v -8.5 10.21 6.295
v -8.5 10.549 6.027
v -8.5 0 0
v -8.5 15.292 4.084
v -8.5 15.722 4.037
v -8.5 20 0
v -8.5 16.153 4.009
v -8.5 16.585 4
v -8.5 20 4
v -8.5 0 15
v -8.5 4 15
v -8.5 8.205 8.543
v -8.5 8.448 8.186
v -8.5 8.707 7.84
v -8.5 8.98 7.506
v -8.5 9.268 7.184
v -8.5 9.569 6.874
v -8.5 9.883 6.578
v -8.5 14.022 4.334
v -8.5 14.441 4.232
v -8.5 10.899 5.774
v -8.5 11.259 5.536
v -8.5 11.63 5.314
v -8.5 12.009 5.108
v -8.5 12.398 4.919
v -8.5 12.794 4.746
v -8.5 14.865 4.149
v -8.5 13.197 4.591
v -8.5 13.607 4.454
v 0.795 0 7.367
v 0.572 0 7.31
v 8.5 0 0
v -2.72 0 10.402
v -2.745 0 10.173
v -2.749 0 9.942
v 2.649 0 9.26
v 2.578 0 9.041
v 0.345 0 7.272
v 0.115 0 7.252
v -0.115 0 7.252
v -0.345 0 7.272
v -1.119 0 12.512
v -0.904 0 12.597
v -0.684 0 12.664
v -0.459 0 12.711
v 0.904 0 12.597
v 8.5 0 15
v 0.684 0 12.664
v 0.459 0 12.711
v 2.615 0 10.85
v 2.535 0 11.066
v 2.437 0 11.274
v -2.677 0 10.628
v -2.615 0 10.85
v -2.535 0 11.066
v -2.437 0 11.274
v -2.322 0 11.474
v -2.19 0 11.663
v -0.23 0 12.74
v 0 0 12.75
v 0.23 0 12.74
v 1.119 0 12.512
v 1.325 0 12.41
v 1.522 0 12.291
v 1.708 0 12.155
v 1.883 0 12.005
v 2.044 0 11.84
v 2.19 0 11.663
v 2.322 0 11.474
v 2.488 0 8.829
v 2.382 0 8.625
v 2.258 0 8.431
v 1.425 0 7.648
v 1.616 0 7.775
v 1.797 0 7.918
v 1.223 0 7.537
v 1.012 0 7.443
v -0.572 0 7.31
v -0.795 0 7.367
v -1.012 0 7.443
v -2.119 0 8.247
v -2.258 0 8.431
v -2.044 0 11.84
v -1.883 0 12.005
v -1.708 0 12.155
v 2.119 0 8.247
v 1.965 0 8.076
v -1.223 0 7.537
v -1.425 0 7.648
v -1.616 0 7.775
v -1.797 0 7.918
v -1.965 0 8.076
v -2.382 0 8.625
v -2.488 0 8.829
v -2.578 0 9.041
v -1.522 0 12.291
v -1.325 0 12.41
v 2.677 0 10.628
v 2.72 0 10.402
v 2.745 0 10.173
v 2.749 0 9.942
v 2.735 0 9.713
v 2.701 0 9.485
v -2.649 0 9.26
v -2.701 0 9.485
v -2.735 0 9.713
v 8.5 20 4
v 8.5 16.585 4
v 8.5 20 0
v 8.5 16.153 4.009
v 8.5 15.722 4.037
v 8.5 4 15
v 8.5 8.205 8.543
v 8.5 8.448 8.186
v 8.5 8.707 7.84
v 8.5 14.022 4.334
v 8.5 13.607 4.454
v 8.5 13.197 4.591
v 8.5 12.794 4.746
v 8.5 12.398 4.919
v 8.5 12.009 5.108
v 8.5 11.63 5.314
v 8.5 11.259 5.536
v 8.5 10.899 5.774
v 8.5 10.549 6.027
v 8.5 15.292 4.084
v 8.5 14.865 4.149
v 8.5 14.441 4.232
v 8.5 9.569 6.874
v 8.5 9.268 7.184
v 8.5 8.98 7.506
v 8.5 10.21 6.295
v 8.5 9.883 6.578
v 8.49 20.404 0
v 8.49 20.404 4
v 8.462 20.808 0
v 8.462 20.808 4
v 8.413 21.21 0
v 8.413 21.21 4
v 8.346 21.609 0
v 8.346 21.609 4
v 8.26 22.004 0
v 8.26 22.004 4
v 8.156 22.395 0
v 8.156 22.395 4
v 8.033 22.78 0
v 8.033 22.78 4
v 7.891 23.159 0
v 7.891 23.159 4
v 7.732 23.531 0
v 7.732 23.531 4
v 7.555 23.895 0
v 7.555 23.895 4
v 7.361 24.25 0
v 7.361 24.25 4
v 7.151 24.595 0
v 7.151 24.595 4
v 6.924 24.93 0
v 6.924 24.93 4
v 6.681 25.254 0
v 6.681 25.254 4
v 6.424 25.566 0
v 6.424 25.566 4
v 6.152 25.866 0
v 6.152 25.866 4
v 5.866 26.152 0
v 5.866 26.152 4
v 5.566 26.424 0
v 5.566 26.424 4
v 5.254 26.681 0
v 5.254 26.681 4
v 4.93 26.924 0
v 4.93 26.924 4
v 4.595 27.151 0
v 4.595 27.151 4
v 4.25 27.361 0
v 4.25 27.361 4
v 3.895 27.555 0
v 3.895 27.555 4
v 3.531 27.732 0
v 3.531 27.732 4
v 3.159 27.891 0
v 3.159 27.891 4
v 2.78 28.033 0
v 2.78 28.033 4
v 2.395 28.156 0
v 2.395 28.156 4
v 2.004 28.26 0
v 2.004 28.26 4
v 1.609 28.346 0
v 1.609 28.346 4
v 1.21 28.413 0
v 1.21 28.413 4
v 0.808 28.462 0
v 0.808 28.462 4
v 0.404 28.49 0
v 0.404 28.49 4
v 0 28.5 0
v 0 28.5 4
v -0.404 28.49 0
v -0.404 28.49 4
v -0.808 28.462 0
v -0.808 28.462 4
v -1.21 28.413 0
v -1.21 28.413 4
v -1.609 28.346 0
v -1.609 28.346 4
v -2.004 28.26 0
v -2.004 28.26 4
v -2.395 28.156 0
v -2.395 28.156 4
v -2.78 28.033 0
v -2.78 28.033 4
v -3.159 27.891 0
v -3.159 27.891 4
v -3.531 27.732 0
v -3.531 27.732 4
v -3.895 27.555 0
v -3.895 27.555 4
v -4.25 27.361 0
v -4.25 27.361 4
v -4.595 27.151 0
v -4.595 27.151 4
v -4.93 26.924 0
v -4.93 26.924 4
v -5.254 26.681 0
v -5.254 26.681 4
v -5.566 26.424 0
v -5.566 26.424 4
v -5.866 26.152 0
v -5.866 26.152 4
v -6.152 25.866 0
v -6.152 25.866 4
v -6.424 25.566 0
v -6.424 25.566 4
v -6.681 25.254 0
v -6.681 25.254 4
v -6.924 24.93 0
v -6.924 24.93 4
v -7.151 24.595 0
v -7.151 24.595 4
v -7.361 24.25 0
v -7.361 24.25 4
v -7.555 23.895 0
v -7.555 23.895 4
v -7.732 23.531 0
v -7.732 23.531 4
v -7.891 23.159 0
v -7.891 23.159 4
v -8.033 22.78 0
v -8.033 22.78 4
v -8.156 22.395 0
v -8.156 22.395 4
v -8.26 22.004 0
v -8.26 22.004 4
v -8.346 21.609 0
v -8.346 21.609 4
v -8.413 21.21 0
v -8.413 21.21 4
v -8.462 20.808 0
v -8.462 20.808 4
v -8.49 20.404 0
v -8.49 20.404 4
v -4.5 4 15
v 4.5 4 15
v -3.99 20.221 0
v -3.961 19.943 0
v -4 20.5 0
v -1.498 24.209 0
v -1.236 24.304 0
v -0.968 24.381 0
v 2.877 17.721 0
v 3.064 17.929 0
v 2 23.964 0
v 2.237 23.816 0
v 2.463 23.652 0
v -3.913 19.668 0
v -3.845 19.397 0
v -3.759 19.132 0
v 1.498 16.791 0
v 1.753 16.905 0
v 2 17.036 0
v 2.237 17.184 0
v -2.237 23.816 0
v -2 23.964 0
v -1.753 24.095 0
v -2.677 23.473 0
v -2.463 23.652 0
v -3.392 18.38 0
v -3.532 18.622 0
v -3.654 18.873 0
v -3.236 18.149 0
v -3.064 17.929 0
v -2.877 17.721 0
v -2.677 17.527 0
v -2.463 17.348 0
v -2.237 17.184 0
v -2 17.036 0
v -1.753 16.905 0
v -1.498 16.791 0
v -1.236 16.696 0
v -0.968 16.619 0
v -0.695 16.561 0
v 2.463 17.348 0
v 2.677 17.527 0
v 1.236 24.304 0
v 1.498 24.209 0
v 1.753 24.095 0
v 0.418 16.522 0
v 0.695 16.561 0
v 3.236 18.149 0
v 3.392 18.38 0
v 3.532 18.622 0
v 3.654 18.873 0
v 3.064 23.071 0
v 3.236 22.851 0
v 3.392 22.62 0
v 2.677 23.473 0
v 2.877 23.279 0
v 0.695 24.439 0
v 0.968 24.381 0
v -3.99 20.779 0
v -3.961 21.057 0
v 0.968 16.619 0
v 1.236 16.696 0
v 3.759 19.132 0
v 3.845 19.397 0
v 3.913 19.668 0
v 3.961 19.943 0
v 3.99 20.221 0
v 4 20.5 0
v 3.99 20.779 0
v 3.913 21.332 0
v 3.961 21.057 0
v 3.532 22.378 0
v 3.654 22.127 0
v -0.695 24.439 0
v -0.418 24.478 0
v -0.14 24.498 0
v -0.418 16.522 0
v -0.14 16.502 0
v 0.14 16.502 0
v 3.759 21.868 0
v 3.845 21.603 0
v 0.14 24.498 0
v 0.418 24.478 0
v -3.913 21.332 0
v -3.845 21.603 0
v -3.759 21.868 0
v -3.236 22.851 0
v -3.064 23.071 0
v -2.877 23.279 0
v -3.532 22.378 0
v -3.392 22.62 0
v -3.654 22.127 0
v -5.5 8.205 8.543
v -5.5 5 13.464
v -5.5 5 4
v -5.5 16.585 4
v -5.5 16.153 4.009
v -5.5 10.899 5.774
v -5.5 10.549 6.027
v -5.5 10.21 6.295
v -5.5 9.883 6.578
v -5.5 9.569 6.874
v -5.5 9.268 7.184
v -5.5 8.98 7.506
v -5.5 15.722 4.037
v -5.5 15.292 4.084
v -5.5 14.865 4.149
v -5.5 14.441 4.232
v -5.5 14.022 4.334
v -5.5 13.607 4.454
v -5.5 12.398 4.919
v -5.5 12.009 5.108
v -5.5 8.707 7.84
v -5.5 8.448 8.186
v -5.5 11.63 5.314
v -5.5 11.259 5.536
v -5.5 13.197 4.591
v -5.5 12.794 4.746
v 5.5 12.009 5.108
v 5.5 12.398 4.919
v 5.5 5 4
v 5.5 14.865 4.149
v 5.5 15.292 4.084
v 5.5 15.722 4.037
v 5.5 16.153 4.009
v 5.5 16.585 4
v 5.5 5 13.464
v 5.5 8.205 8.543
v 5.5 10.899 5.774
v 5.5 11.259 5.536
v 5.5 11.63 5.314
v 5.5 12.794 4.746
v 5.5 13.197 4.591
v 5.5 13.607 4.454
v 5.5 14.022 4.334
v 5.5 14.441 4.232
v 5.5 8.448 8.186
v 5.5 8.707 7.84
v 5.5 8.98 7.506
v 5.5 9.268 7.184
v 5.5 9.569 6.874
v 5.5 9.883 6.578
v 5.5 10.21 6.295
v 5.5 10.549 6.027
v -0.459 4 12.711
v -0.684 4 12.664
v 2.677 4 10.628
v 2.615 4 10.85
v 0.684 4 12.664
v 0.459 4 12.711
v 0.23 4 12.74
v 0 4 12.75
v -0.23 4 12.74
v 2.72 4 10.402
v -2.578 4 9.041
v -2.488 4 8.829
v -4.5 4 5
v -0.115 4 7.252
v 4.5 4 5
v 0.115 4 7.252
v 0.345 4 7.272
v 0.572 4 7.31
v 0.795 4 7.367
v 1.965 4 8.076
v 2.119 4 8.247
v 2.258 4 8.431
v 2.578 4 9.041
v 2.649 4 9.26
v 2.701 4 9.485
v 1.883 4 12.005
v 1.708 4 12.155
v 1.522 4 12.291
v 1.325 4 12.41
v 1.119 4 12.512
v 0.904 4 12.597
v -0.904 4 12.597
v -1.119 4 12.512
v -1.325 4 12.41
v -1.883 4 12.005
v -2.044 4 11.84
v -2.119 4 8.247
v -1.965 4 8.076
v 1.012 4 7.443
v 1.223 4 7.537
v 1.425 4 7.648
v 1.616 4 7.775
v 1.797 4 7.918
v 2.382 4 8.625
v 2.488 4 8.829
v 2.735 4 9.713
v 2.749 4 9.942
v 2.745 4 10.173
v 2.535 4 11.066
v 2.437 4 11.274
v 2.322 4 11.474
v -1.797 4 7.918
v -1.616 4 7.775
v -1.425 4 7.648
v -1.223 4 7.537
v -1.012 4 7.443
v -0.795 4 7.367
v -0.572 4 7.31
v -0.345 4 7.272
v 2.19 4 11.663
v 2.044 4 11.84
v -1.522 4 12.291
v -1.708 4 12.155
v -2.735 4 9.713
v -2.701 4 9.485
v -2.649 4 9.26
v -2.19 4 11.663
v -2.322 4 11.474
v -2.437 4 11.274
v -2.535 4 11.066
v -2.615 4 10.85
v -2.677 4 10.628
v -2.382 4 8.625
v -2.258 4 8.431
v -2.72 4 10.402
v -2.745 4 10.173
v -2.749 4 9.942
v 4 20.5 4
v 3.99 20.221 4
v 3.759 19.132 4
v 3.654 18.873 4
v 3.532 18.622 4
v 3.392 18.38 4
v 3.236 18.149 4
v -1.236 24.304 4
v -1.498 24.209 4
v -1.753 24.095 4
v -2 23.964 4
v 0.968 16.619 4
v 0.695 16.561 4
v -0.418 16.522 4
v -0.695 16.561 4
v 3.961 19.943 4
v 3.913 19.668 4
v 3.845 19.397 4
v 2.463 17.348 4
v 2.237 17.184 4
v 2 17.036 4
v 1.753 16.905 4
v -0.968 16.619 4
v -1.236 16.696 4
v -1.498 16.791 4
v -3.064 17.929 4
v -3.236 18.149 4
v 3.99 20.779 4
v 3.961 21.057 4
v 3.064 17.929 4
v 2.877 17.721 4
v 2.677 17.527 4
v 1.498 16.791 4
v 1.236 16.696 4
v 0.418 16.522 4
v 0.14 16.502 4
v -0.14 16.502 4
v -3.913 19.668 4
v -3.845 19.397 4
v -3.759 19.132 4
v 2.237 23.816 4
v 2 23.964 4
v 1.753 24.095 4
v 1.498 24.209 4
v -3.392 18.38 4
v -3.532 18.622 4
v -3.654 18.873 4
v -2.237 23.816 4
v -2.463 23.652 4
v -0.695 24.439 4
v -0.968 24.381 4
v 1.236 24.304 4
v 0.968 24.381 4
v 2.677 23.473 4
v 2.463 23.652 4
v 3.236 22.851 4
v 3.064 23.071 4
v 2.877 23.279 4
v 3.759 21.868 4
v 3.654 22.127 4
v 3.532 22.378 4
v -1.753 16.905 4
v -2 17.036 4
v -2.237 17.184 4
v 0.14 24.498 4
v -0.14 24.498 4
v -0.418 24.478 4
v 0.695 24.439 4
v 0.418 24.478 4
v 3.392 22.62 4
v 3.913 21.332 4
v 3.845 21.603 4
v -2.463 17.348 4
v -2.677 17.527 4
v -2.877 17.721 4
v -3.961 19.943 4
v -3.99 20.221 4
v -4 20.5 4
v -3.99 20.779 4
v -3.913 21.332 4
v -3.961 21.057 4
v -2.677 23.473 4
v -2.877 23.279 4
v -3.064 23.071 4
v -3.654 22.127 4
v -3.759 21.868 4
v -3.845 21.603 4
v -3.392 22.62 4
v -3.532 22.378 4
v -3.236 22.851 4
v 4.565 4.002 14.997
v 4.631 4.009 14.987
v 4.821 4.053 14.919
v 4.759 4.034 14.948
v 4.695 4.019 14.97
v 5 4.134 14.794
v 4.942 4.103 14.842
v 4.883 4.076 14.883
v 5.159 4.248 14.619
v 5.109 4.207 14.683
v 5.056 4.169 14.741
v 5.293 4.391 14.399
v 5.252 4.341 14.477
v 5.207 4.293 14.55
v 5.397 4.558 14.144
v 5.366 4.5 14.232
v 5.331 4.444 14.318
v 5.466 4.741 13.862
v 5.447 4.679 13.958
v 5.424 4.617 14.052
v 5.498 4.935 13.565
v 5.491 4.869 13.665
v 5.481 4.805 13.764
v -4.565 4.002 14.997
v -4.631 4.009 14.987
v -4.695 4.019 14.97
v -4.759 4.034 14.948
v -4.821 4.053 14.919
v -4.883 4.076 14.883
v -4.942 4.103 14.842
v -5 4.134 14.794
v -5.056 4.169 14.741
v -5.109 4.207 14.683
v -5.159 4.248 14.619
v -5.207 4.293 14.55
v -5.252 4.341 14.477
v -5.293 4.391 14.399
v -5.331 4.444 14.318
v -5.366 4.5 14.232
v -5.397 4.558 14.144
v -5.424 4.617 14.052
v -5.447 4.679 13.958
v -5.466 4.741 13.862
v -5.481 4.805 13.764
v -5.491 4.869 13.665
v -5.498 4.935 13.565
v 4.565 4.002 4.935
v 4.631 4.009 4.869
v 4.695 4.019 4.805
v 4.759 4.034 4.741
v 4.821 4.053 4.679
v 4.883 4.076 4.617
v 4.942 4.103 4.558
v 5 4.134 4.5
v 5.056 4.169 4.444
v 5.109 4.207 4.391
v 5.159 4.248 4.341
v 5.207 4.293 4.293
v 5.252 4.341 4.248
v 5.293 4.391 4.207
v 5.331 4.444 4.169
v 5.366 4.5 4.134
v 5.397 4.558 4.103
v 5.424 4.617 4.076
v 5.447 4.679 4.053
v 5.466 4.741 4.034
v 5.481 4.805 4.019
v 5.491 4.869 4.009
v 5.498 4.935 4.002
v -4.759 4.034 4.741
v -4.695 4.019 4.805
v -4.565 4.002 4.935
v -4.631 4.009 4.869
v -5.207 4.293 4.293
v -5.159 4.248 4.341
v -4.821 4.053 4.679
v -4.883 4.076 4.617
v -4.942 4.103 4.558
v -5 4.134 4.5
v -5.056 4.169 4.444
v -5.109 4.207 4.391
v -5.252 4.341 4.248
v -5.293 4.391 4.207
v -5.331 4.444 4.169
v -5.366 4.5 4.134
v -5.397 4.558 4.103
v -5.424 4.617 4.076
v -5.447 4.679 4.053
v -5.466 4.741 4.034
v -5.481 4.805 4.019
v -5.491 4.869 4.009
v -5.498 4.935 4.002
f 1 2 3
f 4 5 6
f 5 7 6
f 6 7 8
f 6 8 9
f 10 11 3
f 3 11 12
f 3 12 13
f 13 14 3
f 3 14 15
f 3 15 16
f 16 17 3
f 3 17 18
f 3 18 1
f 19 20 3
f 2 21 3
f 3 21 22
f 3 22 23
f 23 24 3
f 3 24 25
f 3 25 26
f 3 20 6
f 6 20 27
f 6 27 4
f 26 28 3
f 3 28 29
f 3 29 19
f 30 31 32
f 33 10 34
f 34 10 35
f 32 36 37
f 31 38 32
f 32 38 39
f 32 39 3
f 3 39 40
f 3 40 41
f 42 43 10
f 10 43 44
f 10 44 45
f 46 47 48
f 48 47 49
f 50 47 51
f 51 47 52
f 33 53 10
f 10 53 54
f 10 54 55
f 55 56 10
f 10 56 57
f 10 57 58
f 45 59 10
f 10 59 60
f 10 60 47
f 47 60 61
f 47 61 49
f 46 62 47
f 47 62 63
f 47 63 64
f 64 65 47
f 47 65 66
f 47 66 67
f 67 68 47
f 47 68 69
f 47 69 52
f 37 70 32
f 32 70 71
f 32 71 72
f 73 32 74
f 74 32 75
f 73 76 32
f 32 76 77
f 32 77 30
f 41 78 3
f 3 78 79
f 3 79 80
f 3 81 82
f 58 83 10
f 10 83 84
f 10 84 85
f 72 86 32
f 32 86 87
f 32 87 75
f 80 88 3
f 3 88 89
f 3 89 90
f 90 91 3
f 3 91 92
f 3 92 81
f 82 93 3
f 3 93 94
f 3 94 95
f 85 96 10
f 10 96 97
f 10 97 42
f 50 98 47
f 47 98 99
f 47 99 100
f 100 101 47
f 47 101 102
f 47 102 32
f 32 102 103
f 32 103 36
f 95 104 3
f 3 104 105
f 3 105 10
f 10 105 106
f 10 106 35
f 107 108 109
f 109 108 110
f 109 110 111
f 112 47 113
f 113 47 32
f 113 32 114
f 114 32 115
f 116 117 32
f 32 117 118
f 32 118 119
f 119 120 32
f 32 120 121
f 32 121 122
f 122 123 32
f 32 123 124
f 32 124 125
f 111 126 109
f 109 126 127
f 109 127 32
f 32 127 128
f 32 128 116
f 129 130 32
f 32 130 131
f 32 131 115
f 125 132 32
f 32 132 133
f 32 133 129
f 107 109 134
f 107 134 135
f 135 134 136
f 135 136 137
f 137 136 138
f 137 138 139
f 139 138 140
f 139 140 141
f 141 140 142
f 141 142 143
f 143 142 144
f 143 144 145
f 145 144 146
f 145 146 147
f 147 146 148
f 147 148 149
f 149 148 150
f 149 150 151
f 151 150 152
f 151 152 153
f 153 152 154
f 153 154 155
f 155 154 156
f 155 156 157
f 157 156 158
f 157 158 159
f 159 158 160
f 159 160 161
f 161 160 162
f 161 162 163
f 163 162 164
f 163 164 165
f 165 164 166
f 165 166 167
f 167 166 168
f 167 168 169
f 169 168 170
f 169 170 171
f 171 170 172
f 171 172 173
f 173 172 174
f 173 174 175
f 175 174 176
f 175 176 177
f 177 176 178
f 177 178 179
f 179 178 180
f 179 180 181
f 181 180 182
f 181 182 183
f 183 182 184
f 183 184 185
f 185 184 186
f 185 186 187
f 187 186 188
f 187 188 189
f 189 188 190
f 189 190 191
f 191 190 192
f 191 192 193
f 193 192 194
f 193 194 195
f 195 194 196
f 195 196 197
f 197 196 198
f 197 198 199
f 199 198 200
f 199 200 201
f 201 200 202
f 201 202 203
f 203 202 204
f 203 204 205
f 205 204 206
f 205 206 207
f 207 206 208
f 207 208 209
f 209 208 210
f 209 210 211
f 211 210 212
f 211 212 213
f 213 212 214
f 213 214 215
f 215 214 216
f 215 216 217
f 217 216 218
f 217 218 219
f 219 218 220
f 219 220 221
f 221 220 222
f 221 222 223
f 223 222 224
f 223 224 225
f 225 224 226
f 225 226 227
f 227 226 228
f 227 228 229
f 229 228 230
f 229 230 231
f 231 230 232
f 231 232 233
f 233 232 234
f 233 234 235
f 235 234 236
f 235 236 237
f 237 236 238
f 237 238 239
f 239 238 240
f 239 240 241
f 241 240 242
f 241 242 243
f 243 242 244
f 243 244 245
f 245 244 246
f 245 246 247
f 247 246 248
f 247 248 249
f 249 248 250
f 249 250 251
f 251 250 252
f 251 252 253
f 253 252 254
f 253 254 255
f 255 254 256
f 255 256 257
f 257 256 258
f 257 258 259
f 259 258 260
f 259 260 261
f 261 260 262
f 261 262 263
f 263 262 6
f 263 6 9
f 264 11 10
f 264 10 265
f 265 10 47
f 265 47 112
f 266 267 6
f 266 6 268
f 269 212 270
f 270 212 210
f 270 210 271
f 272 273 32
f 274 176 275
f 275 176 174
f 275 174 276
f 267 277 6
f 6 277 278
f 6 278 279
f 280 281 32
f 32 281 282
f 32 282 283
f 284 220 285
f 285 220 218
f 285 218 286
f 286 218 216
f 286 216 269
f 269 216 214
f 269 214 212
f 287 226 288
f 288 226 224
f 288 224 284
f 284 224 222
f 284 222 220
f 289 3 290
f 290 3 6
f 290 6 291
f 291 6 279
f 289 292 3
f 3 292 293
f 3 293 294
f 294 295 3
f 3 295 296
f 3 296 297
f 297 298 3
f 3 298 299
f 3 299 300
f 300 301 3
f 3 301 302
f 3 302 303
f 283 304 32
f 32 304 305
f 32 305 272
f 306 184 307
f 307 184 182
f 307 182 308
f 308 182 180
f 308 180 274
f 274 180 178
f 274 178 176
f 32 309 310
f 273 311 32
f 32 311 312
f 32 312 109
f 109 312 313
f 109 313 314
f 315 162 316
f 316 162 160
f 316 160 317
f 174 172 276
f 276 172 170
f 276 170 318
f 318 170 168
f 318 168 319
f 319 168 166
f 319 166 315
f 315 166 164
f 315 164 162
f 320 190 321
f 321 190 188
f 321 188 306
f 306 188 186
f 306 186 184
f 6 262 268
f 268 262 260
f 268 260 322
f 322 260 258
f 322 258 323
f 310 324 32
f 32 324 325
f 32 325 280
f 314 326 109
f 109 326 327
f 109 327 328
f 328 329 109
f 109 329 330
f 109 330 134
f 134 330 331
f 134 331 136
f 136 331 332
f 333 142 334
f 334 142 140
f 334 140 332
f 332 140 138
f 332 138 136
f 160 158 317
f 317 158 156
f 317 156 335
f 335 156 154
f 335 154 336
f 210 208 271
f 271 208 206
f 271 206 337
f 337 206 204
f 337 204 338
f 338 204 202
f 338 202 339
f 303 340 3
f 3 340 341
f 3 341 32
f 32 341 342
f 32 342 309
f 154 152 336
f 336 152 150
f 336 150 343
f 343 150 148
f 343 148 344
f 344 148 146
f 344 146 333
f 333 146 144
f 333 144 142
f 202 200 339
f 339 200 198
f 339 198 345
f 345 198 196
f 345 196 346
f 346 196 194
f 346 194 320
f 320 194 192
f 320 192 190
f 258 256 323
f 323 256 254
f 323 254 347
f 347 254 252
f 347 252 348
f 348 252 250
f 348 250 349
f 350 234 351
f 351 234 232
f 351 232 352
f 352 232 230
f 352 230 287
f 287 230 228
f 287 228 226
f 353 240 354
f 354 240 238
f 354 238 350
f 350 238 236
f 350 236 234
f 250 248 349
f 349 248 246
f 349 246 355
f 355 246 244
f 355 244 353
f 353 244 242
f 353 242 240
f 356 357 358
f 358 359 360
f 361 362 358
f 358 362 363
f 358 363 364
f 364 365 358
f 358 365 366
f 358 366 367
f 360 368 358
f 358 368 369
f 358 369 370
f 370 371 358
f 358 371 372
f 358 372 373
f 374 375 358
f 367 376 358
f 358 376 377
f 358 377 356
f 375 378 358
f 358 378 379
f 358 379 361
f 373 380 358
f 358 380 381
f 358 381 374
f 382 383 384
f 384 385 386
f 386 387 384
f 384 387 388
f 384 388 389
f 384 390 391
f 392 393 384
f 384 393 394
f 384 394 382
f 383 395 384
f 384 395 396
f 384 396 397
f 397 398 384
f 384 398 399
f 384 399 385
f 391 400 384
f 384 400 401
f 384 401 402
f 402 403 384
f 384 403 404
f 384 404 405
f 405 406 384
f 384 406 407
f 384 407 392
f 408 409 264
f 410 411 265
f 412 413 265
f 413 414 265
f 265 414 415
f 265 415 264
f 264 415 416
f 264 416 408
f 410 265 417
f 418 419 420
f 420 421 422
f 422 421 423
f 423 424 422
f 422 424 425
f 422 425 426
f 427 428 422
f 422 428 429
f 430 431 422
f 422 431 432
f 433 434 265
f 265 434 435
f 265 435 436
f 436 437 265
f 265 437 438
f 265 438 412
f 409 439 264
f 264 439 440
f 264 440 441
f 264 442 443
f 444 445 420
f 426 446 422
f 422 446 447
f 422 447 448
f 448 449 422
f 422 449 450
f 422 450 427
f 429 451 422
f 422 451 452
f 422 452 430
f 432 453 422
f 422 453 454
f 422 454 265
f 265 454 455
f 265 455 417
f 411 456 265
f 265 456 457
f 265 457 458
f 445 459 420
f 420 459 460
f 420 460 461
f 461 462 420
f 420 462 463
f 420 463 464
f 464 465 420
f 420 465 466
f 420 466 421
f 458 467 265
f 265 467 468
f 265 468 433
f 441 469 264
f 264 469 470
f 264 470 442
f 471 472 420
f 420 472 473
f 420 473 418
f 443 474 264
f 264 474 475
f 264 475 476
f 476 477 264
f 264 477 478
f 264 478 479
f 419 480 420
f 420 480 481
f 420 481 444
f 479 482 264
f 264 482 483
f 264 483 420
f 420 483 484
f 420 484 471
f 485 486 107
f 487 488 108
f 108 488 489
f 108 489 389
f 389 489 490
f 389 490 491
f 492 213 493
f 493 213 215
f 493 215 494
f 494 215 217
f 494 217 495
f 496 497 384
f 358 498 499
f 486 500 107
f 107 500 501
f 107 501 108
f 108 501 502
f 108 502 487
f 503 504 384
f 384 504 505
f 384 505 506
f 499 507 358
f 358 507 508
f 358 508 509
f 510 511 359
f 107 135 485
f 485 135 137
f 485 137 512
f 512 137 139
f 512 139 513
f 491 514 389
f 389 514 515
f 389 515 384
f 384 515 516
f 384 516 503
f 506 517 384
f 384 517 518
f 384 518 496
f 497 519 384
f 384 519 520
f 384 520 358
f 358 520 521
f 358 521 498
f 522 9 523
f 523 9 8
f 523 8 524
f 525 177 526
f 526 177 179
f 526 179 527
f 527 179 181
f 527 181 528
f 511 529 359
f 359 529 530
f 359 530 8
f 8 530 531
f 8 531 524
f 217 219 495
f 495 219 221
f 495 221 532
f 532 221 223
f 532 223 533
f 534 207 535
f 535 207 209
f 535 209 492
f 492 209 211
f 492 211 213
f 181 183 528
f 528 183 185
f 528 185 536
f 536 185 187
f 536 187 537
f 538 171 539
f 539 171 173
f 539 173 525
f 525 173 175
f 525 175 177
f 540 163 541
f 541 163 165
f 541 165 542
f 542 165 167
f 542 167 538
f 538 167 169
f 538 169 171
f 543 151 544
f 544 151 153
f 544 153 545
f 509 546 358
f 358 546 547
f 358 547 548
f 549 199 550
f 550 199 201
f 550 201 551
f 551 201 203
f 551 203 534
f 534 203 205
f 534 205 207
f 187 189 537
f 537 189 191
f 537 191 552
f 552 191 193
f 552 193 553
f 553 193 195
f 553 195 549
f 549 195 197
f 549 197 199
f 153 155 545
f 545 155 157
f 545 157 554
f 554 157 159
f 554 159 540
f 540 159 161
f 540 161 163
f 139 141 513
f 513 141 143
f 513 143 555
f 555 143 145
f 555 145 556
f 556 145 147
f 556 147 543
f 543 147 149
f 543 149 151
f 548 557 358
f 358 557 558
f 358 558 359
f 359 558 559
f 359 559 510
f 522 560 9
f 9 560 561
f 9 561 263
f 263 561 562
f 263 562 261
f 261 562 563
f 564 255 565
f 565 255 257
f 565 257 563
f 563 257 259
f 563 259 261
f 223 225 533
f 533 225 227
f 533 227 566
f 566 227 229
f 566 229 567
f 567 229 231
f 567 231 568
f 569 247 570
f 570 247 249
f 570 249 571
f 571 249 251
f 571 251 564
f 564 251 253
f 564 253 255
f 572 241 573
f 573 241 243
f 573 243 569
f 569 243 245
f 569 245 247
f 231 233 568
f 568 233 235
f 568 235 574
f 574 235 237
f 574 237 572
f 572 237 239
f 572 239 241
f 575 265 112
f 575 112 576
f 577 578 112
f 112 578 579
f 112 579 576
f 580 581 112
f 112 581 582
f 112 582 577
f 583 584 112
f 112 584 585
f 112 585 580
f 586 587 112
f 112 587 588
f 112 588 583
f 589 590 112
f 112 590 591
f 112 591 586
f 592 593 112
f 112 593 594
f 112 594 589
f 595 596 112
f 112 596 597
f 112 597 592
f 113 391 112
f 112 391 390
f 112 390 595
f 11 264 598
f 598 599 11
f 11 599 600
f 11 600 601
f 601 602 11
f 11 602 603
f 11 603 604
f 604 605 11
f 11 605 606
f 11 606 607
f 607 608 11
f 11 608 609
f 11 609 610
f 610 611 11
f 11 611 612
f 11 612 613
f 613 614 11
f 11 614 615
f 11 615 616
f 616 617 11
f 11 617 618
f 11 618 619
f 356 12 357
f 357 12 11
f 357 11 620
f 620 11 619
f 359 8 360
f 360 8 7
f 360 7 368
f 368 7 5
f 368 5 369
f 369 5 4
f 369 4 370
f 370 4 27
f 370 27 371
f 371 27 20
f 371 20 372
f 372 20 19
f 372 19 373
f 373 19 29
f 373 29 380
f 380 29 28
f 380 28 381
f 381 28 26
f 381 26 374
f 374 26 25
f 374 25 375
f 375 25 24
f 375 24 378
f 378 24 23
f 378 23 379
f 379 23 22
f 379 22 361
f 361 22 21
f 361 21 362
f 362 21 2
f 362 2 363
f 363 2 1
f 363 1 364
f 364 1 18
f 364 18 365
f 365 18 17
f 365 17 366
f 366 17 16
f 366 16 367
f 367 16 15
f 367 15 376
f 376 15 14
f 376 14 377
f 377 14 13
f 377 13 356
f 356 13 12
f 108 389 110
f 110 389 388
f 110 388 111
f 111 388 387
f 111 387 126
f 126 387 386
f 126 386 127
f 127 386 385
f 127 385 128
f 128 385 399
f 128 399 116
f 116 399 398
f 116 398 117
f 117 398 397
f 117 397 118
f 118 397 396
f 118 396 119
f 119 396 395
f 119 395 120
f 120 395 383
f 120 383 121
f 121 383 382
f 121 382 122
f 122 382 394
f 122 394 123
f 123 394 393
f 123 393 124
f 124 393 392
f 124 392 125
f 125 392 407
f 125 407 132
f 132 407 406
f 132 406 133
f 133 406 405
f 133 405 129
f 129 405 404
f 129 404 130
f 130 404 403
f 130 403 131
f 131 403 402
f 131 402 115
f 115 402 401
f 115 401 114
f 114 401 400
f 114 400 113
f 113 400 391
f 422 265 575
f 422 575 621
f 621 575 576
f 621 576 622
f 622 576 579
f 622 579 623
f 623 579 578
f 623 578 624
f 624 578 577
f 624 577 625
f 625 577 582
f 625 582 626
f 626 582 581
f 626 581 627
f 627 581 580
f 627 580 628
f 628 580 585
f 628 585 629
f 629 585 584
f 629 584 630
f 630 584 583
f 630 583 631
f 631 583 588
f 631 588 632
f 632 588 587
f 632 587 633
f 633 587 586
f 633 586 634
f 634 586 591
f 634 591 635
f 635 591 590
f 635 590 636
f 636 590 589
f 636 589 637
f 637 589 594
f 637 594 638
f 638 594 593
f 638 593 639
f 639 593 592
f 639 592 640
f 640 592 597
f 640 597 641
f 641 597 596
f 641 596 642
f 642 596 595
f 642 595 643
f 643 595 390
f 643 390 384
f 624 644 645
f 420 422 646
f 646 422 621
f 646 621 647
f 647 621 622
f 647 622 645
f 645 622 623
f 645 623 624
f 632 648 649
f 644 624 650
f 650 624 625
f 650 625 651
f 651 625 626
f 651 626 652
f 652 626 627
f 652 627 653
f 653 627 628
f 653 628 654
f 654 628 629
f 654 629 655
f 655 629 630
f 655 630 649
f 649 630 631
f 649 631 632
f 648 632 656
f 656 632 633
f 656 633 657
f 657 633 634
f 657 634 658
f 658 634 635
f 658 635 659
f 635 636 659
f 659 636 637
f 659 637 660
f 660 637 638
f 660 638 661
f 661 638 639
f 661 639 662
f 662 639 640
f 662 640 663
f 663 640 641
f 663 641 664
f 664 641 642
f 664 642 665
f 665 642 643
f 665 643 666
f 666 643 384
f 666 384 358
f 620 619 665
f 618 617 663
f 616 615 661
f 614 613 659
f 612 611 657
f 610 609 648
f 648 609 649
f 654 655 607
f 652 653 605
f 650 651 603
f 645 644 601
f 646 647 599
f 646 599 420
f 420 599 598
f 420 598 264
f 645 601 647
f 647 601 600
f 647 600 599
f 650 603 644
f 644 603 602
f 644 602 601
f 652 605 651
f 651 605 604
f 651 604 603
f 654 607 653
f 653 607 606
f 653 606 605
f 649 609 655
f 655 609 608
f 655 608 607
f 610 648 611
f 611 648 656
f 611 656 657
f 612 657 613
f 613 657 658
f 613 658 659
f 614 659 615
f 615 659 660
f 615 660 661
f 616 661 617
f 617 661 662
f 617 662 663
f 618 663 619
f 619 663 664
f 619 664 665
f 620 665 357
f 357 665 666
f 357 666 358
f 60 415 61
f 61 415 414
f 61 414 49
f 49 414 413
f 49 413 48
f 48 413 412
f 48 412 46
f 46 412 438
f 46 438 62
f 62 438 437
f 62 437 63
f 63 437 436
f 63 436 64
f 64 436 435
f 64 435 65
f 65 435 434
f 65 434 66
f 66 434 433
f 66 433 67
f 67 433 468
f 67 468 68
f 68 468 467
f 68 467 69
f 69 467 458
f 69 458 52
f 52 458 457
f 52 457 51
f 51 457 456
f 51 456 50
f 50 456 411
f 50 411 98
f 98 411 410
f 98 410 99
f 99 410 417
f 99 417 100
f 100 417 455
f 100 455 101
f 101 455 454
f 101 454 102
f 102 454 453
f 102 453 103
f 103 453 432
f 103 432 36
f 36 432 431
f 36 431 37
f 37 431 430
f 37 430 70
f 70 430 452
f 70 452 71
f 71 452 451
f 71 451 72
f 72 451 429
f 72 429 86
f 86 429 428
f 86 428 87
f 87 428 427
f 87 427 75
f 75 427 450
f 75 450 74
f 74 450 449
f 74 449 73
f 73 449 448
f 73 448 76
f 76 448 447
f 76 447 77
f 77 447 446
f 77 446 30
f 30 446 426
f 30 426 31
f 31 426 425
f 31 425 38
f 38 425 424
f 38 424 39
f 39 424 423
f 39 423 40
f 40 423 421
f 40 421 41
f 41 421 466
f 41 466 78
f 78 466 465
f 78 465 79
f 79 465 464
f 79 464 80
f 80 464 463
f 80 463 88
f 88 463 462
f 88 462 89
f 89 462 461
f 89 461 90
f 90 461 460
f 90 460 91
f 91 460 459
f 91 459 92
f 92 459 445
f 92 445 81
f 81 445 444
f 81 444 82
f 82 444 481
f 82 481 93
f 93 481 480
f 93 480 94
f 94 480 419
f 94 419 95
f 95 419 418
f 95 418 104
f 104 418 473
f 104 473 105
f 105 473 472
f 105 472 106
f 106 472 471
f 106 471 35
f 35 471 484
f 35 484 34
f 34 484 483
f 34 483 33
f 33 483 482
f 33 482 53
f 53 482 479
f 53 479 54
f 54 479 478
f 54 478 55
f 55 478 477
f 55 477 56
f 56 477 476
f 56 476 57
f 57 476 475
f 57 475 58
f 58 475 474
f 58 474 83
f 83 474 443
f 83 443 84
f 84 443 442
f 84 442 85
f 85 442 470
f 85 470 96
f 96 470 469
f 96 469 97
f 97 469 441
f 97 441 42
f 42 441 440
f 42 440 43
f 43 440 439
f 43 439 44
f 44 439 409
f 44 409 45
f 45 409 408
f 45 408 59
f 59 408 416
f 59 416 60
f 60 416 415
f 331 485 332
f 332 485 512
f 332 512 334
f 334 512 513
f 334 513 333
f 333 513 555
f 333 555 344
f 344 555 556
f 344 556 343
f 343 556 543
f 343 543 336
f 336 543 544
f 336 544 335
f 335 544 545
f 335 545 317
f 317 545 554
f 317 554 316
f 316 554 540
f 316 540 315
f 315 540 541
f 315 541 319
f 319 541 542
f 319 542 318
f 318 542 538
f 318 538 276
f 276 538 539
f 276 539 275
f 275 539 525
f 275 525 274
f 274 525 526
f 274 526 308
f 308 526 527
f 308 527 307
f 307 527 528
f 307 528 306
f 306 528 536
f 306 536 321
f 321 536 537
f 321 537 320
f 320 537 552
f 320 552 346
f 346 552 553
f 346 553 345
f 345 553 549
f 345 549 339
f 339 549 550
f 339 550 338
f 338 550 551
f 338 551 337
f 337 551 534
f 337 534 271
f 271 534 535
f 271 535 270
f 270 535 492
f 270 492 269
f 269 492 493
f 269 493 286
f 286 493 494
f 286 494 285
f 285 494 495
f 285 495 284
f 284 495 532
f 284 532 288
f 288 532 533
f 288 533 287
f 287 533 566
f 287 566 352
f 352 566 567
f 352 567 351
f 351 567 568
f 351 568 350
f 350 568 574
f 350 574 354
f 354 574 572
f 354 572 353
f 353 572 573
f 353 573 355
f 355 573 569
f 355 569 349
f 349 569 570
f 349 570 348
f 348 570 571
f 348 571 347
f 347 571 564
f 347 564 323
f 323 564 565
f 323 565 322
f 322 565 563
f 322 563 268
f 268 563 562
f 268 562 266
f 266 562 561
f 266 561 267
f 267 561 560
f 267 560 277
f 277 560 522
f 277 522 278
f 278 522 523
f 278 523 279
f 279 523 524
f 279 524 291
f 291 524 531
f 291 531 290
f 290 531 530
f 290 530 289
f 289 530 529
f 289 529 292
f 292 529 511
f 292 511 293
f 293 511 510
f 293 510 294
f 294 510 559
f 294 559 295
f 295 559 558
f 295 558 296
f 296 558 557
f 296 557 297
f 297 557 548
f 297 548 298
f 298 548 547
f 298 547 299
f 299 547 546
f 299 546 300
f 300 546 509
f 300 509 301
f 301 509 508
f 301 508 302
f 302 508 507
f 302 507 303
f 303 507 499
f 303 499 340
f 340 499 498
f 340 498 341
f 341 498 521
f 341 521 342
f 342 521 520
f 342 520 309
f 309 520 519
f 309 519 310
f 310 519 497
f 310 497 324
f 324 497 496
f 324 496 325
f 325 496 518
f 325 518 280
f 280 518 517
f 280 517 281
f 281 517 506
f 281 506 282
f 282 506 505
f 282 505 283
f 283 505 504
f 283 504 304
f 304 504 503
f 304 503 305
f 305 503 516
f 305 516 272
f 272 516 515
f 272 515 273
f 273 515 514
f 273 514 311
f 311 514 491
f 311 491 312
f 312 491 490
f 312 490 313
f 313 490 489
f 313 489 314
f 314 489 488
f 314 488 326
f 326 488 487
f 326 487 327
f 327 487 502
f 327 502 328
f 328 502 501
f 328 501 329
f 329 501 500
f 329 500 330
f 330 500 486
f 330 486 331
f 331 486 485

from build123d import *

# Parameters (mm, degrees)
RESSALTO_EXTRUS_O1_DEPTH = 15
CORTE_EXTRUS_O1_START    = -11
CORTE_EXTRUS_O1_DEPTH    = 11
CORTE_EXTRUS_O2_DEPTH    = 37.417715469
FILETE1_R                = 10
FILETE2_R                = 1
FURO_COM_FOLGA_DE_M51_D  = 5.5
ESBO_O7_R                = 4
CORTE_EXTRUS_O3_DEPTH    = 32.709619991


with BuildPart() as part:
    # Esboço1 → Ressalto-extrusão1 (new body)
    with BuildSketch(Plane.XY):
        with BuildLine():
            Line((-8.5, 0), (8.5, 0))
            Line((8.5, 0), (8.5, 20))
            ThreePointArc((8.5, 20), (0, 28.5), (-8.5, 20))
            Line((-8.5, 20), (-8.5, 0))
        make_face()
    extrude(amount=RESSALTO_EXTRUS_O1_DEPTH)

    # Esboço2 → Corte-extrusão1 (cut)
    with BuildSketch(Plane.XY.offset(15).offset(CORTE_EXTRUS_O1_START)):
        with BuildLine():
            Line((-5.5, 4), (5.5, 4))
            Line((5.5, 4), (5.5, 26.480740698))
            ThreePointArc((5.5, 26.480740698), (0, 28.5), (-5.5, 26.480740698))
            Line((-5.5, 26.480740698), (-5.5, 4))
        make_face()
    extrude(amount=CORTE_EXTRUS_O1_DEPTH, mode=Mode.SUBTRACT)

    # Esboço3 → Corte-extrusão2 (cut, through all)
    with BuildSketch(Plane(origin=(8.5, 0, 0), x_dir=(0, 0, -1), z_dir=(1, 0, 0))):
        Polygon((-15, 4), (-4, 11.163154524), (-4, 28.5), (-15, 28.5), align=None)
    extrude(amount=-CORTE_EXTRUS_O2_DEPTH, mode=Mode.SUBTRACT)

    # Filete1
    filete1_edges = [part.edges().sort_by_distance(p)[0] for p in [
        (-7, 11.163154524, 4),
        (7, 11.163154524, 4),
    ]]
    fillet(filete1_edges, radius=FILETE1_R)

    # Filete2
    filete2_edges = [part.edges().sort_by_distance(p)[0] for p in [
        (-5.5, 4, 9.5),
        (0, 4, 4),
        (5.5, 4, 9.5),
    ]]
    fillet(filete2_edges, radius=FILETE2_R)

    # Furo com folga de M51 (through all)
    with Locations(Plane(origin=(0, 4, 0), x_dir=(1, 0, 0), z_dir=(0, 1, 0))):
        with Locations((0, -10)):
            Hole(FURO_COM_FOLGA_DE_M51_D / 2)

    # Esboço7 → Corte-extrusão3 (cut, through all)
    with BuildSketch(Plane.XY.offset(4)):
        with Locations((0, 20.5)):
            Circle(ESBO_O7_R)
    extrude(amount=-CORTE_EXTRUS_O3_DEPTH, mode=Mode.SUBTRACT)


solid = part.part
